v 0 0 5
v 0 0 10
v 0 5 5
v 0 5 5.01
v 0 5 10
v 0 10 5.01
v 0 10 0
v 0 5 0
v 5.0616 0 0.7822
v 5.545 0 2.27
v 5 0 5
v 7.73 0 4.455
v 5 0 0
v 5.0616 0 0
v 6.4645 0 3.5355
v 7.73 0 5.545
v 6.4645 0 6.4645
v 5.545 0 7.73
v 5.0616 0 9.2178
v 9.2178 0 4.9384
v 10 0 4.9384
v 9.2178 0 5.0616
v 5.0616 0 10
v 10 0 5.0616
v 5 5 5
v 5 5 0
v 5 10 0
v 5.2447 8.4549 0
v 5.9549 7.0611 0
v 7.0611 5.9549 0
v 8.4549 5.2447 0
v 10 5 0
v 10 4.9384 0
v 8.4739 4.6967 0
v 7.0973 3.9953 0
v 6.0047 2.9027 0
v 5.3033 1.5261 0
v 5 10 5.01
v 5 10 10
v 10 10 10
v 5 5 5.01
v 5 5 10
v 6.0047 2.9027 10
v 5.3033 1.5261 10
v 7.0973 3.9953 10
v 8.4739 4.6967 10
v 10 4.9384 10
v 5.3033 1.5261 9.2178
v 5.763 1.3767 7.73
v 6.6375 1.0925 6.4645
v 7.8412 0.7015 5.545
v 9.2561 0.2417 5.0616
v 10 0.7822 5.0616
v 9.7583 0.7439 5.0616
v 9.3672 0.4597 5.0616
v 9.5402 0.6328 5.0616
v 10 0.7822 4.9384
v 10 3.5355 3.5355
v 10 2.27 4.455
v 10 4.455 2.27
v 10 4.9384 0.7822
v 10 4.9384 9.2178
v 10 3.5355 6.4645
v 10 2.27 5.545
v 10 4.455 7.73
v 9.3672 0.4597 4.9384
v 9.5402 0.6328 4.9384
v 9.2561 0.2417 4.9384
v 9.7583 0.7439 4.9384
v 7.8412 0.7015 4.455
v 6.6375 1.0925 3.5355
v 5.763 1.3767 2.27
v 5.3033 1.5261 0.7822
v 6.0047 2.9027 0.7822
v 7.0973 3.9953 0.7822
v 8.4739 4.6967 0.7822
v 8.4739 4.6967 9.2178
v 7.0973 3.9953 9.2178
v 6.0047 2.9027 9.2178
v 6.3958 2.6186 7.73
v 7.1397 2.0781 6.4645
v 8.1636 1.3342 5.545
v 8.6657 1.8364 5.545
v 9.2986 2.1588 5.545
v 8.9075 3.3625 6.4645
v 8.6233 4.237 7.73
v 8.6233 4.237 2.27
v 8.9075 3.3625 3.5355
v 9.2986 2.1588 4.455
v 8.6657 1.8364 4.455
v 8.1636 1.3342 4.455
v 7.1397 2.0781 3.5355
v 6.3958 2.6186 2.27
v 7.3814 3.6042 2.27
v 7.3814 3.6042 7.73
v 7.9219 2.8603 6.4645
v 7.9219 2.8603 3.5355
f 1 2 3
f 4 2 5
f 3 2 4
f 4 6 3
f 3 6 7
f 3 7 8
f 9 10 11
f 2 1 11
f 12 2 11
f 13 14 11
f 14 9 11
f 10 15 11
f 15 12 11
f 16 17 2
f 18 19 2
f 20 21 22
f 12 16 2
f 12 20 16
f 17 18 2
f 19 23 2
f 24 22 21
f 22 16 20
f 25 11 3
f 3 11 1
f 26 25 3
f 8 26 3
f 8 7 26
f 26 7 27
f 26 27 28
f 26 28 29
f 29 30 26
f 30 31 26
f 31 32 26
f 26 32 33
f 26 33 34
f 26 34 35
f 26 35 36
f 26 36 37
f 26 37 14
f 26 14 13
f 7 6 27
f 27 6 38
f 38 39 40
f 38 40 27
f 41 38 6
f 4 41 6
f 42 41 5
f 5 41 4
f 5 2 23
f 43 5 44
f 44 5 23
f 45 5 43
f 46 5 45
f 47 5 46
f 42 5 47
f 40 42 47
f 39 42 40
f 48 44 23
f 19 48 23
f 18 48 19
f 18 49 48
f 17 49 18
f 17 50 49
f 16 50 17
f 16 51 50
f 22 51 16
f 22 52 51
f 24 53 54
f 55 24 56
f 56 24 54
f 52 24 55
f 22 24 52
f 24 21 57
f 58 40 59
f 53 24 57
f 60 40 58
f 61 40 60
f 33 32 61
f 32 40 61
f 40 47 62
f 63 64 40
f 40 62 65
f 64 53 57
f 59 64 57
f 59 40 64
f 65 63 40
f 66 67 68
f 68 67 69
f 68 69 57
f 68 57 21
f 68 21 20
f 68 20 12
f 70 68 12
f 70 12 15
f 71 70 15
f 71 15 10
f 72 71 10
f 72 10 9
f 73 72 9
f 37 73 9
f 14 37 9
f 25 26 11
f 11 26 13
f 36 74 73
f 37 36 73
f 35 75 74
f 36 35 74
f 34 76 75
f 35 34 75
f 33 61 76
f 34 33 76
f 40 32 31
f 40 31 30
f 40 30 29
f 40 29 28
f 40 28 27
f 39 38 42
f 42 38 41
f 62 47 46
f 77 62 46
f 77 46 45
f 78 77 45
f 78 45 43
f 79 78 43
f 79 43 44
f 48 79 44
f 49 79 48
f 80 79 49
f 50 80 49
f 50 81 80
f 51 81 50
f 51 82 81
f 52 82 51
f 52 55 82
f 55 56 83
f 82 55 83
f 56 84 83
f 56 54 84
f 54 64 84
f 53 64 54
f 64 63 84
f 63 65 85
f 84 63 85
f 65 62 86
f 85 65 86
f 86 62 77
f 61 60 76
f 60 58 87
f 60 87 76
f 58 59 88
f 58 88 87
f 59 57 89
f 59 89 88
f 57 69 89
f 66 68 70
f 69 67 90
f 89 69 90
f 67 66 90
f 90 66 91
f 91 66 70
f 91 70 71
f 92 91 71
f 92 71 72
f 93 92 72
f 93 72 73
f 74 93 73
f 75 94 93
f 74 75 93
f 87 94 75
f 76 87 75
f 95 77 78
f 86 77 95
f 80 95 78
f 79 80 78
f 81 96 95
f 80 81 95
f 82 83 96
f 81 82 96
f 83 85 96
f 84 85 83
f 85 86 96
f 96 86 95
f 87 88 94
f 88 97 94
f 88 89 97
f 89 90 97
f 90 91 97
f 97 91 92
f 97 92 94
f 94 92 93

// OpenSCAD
// Cube FancyX 10mm, written by Rene K. Mueller <spiritdude@gmail.com>
//
// License: GPLv2
//
// History:
// 2013/02/12: first version
//
// Features:
// complex foot, complex top

// units [mm]

difference() {
   cube(size=10);
   union() {
      cube(size=5);
      translate([10,0,0]) sphere(r=5,center=true,$fn=20);
      translate([10,10,0]) cylinder(h=10,r1=5,r2=0,$fn=20); 
  
      translate([0,5,5.01]) cube(size=5); // must be 5.01, as 5.0 gives compiling error on the command-line of openscad
      translate([10,0,10]) sphere(r=5,center=true,$fn=20);
   }
}
